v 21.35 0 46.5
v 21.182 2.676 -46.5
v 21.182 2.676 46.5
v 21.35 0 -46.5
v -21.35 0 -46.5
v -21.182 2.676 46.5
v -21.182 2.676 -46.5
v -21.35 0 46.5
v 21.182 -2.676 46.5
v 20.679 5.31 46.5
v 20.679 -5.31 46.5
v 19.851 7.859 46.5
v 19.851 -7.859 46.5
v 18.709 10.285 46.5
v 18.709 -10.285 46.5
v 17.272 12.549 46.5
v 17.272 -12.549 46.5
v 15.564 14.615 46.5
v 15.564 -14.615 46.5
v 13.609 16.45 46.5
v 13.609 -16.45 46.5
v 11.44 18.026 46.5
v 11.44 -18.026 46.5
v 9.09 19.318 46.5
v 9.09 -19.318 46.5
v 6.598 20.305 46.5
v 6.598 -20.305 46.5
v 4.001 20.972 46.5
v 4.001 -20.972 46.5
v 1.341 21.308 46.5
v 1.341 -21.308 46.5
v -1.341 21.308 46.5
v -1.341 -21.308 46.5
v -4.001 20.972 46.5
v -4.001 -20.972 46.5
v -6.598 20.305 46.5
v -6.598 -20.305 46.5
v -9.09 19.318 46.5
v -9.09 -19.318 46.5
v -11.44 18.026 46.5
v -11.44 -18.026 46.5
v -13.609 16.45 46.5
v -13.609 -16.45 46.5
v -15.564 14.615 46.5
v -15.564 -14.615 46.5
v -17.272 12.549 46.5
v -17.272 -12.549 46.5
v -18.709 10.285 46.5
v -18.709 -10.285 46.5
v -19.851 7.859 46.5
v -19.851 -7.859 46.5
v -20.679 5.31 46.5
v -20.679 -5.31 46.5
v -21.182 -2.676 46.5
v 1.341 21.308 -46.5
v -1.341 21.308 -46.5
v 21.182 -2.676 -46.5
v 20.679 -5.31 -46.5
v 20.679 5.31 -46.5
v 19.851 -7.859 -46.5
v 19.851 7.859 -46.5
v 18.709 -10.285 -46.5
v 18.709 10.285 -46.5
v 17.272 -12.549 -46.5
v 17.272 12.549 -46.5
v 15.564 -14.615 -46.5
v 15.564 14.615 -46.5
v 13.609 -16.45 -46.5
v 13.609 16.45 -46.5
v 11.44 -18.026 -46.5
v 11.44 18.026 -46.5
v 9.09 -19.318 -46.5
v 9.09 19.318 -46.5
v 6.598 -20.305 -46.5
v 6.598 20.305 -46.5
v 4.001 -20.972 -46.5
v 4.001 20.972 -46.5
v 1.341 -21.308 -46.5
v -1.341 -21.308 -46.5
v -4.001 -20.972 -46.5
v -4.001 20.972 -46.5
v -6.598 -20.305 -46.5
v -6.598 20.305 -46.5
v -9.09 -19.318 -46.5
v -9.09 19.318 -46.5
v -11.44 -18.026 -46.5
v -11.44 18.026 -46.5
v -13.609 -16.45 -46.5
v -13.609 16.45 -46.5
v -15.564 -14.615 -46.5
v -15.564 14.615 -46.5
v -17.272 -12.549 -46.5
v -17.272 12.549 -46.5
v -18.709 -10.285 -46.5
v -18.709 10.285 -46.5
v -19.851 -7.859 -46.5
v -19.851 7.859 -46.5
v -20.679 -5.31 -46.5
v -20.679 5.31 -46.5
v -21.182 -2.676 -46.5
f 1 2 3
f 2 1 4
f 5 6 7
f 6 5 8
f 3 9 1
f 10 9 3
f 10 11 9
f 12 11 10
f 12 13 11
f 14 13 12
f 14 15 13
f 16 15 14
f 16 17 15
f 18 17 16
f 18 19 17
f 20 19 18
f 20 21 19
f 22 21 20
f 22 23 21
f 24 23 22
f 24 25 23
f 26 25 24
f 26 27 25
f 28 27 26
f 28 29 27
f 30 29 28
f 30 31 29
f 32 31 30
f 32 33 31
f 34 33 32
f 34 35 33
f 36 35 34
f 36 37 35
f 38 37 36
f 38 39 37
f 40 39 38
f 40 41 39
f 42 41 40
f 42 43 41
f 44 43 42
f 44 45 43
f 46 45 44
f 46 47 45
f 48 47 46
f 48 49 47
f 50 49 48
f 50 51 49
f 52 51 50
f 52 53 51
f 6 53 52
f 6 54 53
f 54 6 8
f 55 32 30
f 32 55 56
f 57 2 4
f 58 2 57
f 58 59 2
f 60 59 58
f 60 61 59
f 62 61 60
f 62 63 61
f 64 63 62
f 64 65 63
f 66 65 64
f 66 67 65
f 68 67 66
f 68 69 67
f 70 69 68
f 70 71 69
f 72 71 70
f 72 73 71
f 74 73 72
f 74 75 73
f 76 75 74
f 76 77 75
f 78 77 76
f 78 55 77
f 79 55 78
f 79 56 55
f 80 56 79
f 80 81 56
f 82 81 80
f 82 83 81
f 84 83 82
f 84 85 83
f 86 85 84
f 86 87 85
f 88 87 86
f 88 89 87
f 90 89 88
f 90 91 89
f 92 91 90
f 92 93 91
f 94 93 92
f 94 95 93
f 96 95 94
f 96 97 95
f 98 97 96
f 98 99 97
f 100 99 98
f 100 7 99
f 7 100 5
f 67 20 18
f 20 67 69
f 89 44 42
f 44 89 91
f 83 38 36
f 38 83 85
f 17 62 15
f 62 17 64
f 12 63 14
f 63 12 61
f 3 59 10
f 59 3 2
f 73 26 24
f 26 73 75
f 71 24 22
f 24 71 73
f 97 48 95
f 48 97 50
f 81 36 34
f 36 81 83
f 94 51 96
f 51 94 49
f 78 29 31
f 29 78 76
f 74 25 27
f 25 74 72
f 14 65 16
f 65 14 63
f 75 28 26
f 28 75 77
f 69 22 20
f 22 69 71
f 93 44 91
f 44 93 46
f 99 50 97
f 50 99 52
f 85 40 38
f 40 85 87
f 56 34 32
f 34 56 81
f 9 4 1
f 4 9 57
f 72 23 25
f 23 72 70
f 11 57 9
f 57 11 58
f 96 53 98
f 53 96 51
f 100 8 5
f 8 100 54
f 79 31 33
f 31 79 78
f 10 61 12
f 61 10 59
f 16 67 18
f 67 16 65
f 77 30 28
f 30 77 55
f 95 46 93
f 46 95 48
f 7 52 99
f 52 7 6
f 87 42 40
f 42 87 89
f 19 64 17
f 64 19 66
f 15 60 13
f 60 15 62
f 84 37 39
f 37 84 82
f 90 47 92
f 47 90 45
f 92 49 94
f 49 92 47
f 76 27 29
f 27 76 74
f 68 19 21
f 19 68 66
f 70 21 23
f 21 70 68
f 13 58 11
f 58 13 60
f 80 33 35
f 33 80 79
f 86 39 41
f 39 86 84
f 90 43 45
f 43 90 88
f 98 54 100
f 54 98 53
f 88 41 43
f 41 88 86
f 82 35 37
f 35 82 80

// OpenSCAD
$fn = 50;


difference() {
	union() {
		translate(v = [0, 0, -46.5000000000]) {
			cylinder(h = 93, r = 21.3500000000);
		}
	}
	union() {
		translate(v = [0, 0, -100.0000000000]) {
			cylinder(h = 200, r = 0);
		}
	}
}
